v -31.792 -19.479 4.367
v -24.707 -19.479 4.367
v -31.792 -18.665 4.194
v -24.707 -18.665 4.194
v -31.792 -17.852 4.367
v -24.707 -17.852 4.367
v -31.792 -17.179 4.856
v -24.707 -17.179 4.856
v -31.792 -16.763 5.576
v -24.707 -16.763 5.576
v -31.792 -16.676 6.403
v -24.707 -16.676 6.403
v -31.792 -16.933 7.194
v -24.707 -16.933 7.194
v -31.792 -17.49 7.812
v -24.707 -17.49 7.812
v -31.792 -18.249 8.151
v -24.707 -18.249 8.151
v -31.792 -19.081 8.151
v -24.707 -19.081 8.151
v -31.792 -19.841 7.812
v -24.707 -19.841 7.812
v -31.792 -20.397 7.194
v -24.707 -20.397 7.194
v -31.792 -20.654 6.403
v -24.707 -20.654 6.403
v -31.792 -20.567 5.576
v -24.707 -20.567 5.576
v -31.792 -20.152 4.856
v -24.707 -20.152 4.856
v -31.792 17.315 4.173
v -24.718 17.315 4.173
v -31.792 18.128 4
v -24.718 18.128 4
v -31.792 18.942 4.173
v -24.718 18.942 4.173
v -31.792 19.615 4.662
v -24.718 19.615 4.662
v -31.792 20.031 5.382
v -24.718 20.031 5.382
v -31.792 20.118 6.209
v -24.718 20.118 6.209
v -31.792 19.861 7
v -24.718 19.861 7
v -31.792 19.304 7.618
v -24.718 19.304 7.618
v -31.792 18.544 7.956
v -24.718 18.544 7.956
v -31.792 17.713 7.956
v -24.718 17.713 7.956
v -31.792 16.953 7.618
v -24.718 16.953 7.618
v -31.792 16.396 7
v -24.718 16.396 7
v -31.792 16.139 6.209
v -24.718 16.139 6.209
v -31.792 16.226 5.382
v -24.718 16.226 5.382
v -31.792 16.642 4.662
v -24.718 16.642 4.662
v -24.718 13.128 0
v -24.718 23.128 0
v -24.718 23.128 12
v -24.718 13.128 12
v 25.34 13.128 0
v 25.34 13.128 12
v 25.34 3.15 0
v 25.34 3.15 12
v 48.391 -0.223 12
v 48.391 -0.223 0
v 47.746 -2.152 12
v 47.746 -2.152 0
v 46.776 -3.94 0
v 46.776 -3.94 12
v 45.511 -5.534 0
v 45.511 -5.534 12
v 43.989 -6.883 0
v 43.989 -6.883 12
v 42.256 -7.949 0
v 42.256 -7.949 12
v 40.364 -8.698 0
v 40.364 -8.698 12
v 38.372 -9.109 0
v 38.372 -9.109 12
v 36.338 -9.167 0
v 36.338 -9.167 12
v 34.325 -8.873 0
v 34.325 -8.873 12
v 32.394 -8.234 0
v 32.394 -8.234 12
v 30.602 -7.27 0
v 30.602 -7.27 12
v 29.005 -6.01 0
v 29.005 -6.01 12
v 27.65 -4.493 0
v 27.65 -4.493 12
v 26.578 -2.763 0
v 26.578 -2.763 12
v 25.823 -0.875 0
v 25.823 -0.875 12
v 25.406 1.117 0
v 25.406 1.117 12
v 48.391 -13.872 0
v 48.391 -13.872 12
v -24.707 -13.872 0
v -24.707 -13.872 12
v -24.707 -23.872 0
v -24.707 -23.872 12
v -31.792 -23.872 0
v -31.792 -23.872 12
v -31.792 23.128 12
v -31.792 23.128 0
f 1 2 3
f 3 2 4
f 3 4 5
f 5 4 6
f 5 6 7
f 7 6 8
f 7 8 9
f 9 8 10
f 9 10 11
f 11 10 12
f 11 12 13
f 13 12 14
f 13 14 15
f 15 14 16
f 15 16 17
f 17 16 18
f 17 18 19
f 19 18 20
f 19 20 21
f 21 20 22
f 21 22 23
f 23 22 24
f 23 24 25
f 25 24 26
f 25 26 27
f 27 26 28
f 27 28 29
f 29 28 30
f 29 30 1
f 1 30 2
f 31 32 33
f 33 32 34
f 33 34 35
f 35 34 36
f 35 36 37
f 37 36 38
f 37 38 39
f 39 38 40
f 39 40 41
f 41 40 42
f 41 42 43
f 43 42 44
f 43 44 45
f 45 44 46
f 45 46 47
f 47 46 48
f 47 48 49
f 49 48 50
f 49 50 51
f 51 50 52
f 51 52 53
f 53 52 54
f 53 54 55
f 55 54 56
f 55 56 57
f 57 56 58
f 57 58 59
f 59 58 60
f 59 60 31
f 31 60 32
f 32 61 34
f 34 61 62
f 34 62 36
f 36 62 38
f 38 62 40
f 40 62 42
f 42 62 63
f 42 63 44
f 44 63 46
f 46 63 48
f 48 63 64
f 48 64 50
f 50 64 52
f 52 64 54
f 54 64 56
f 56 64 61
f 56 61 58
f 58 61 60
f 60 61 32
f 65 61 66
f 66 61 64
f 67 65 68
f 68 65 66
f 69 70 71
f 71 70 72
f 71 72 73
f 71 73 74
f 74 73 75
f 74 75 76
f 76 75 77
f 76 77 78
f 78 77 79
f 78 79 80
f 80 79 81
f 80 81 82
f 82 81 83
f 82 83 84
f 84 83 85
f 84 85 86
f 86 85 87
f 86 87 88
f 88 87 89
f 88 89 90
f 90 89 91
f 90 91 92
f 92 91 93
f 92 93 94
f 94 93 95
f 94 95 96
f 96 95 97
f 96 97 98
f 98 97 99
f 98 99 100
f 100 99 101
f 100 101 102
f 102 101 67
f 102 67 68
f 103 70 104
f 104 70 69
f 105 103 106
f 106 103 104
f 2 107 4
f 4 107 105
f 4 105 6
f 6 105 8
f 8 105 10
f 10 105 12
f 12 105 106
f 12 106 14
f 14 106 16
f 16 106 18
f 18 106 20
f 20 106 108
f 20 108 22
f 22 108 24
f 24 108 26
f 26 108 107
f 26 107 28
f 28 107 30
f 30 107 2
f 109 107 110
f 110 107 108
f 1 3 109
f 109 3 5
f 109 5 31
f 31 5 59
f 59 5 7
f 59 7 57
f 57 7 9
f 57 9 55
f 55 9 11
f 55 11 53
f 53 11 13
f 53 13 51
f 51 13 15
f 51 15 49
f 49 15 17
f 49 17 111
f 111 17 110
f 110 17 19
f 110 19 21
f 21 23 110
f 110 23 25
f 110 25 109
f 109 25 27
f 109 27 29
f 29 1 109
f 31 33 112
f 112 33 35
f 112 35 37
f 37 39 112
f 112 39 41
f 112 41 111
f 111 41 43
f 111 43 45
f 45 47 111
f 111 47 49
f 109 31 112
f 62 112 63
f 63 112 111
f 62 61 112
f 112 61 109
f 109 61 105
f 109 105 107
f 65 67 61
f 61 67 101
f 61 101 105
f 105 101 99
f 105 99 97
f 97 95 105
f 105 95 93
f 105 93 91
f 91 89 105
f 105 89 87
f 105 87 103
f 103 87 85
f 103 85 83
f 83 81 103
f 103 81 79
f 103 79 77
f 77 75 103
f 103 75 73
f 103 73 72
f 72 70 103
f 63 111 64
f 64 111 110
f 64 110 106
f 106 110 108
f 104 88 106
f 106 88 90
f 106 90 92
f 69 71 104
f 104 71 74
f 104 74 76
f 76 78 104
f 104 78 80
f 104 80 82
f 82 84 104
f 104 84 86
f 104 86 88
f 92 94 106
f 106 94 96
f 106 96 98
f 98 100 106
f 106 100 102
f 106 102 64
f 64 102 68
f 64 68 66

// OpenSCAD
polyhedron(
    points = [
        [-31.7920341, -19.4787045, 4.36715317],
        [-24.7071152, -19.4787045, 4.36715317],
        [-31.7920341, -18.6652336, 4.19424438],
        [-24.7071152, -18.6652336, 4.19424438],
        [-31.7920341, -17.851759, 4.36715317],
        [-24.7071152, -17.851759, 4.36715317],
        [-31.7920341, -17.1789417, 4.85598278],
        [-24.7071152, -17.1789417, 4.85598278],
        [-31.7920341, -16.7631187, 5.57621002],
        [-24.7071152, -16.7631187, 5.57621002],
        [-31.7920341, -16.6761894, 6.40330124],
        [-24.7071152, -16.6761894, 6.40330124],
        [-31.7920341, -16.9331818, 7.19424438],
        [-24.7071152, -16.9331818, 7.19424438],
        [-31.7920341, -17.4896622, 7.81227827],
        [-24.7071152, -17.4896622, 7.81227827],
        [-31.7920341, -18.2494087, 8.1505394],
        [-24.7071152, -18.2494087, 8.1505394],
        [-31.7920341, -19.0810566, 8.1505394],
        [-24.7071152, -19.0810566, 8.1505394],
        [-31.7920341, -19.8408031, 7.81227827],
        [-24.7071152, -19.8408031, 7.81227827],
        [-31.7920341, -20.3972836, 7.19424438],
        [-24.7071152, -20.3972836, 7.19424438],
        [-31.7920341, -20.6542759, 6.40330124],
        [-24.7071152, -20.6542759, 6.40330124],
        [-31.7920341, -20.5673447, 5.57621002],
        [-24.7071152, -20.5673447, 5.57621002],
        [-31.7920341, -20.1515217, 4.85598278],
        [-24.7071152, -20.1515217, 4.85598278],
        [-31.7920341, 17.3150063, 4.17290878],
        [-24.7180061, 17.3150063, 4.17290878],
        [-31.7920341, 18.128479, 4],
        [-24.7180061, 18.128479, 4],
        [-31.7920341, 18.9419537, 4.17290878],
        [-24.7180061, 18.9419537, 4.17290878],
        [-31.7920341, 19.614769, 4.66173887],
        [-24.7180061, 19.614769, 4.66173887],
        [-31.7920341, 20.0305939, 5.38196611],
        [-24.7180061, 20.0305939, 5.38196611],
        [-31.7920341, 20.1175232, 6.20905685],
        [-24.7180061, 20.1175232, 6.20905685],
        [-31.7920341, 19.8605309, 7],
        [-24.7180061, 19.8605309, 7],
        [-31.7920341, 19.3040504, 7.61803389],
        [-24.7180061, 19.3040504, 7.61803389],
        [-31.7920341, 18.5443039, 7.95629501],
        [-24.7180061, 18.5443039, 7.95629501],
        [-31.7920341, 17.712656, 7.95629501],
        [-24.7180061, 17.712656, 7.95629501],
        [-31.7920341, 16.9529095, 7.61803389],
        [-24.7180061, 16.9529095, 7.61803389],
        [-31.7920341, 16.3964291, 7],
        [-24.7180061, 16.3964291, 7],
        [-31.7920341, 16.1394348, 6.20905685],
        [-24.7180061, 16.1394348, 6.20905685],
        [-31.7920341, 16.226366, 5.38196611],
        [-24.7180061, 16.226366, 5.38196611],
        [-31.7920341, 16.6421909, 4.66173887],
        [-24.7180061, 16.6421909, 4.66173887],
        [-24.7180061, 13.12848, 0],
        [-24.7180061, 23.1284809, 0],
        [-24.7180061, 23.1284809, 12],
        [-24.7180061, 13.12848, 12],
        [25.3402996, 13.12848, 0],
        [25.3402996, 13.12848, 12],
        [25.3402996, 3.14999533, 0],
        [25.3402996, 3.14999533, 12],
        [48.3912621, -0.222821593, 12],
        [48.3912621, -0.222821593, 0],
        [47.7458725, -2.15212321, 12],
        [47.7458725, -2.15212321, 0],
        [46.7759361, -3.94040775, 0],
        [46.7759361, -3.94040775, 12],
        [45.5108032, -5.53357029, 0],
        [45.5108032, -5.53357029, 12],
        [43.9887466, -6.88341093, 0],
        [43.9887466, -6.88341093, 12],
        [42.2558136, -7.94909096, 0],
        [42.2558136, -7.94909096, 12],
        [40.3644333, -8.69836903, 0],
        [40.3644333, -8.69836903, 12],
        [38.3718338, -9.10857391, 0],
        [38.3718338, -9.10857391, 12],
        [36.338295, -9.16729832, 0],
        [36.338295, -9.16729832, 12],
        [34.3253403, -8.87276268, 0],
        [34.3253403, -8.87276268, 12],
        [32.3938751, -8.23387909, 0],
        [32.3938751, -8.23387909, 12],
        [30.6023312, -7.26997757, 0],
        [30.6023312, -7.26997757, 12],
        [29.0049152, -6.01021957, 0],
        [29.0049152, -6.01021957, 12],
        [27.6499538, -4.4927187, 0],
        [27.6499538, -4.4927187, 12],
        [26.5784416, -2.76338625, 0],
        [26.5784416, -2.76338625, 12],
        [25.8227921, -0.87454313, 0],
        [25.8227921, -0.87454313, 12],
        [25.4058743, 1.11666512, 0],
        [25.4058743, 1.11666512, 12],
        [48.3912621, -13.871521, 0],
        [48.3912621, -13.871521, 12],
        [-24.7071152, -13.871521, 0],
        [-24.7071152, -13.871521, 12],
        [-24.7071152, -23.8715191, 0],
        [-24.7071152, -23.8715191, 12],
        [-31.7920341, -23.8715191, 0],
        [-31.7920341, -23.8715191, 12],
        [-31.7920341, 23.1284809, 12],
        [-31.7920341, 23.1284809, 0]
    ],
    faces = [
        [0, 1, 2],
        [2, 1, 3],
        [2, 3, 4],
        [4, 3, 5],
        [4, 5, 6],
        [6, 5, 7],
        [6, 7, 8],
        [8, 7, 9],
        [8, 9, 10],
        [10, 9, 11],
        [10, 11, 12],
        [12, 11, 13],
        [12, 13, 14],
        [14, 13, 15],
        [14, 15, 16],
        [16, 15, 17],
        [16, 17, 18],
        [18, 17, 19],
        [18, 19, 20],
        [20, 19, 21],
        [20, 21, 22],
        [22, 21, 23],
        [22, 23, 24],
        [24, 23, 25],
        [24, 25, 26],
        [26, 25, 27],
        [26, 27, 28],
        [28, 27, 29],
        [28, 29, 0],
        [0, 29, 1],
        [30, 31, 32],
        [32, 31, 33],
        [32, 33, 34],
        [34, 33, 35],
        [34, 35, 36],
        [36, 35, 37],
        [36, 37, 38],
        [38, 37, 39],
        [38, 39, 40],
        [40, 39, 41],
        [40, 41, 42],
        [42, 41, 43],
        [42, 43, 44],
        [44, 43, 45],
        [44, 45, 46],
        [46, 45, 47],
        [46, 47, 48],
        [48, 47, 49],
        [48, 49, 50],
        [50, 49, 51],
        [50, 51, 52],
        [52, 51, 53],
        [52, 53, 54],
        [54, 53, 55],
        [54, 55, 56],
        [56, 55, 57],
        [56, 57, 58],
        [58, 57, 59],
        [58, 59, 30],
        [30, 59, 31],
        [31, 60, 33],
        [33, 60, 61],
        [33, 61, 35],
        [35, 61, 37],
        [37, 61, 39],
        [39, 61, 41],
        [41, 61, 62],
        [41, 62, 43],
        [43, 62, 45],
        [45, 62, 47],
        [47, 62, 63],
        [47, 63, 49],
        [49, 63, 51],
        [51, 63, 53],
        [53, 63, 55],
        [55, 63, 60],
        [55, 60, 57],
        [57, 60, 59],
        [59, 60, 31],
        [64, 60, 65],
        [65, 60, 63],
        [66, 64, 67],
        [67, 64, 65],
        [68, 69, 70],
        [70, 69, 71],
        [70, 71, 72],
        [70, 72, 73],
        [73, 72, 74],
        [73, 74, 75],
        [75, 74, 76],
        [75, 76, 77],
        [77, 76, 78],
        [77, 78, 79],
        [79, 78, 80],
        [79, 80, 81],
        [81, 80, 82],
        [81, 82, 83],
        [83, 82, 84],
        [83, 84, 85],
        [85, 84, 86],
        [85, 86, 87],
        [87, 86, 88],
        [87, 88, 89],
        [89, 88, 90],
        [89, 90, 91],
        [91, 90, 92],
        [91, 92, 93],
        [93, 92, 94],
        [93, 94, 95],
        [95, 94, 96],
        [95, 96, 97],
        [97, 96, 98],
        [97, 98, 99],
        [99, 98, 100],
        [99, 100, 101],
        [101, 100, 66],
        [101, 66, 67],
        [102, 69, 103],
        [103, 69, 68],
        [104, 102, 105],
        [105, 102, 103],
        [1, 106, 3],
        [3, 106, 104],
        [3, 104, 5],
        [5, 104, 7],
        [7, 104, 9],
        [9, 104, 11],
        [11, 104, 105],
        [11, 105, 13],
        [13, 105, 15],
        [15, 105, 17],
        [17, 105, 19],
        [19, 105, 107],
        [19, 107, 21],
        [21, 107, 23],
        [23, 107, 25],
        [25, 107, 106],
        [25, 106, 27],
        [27, 106, 29],
        [29, 106, 1],
        [108, 106, 109],
        [109, 106, 107],
        [0, 2, 108],
        [108, 2, 4],
        [108, 4, 30],
        [30, 4, 58],
        [58, 4, 6],
        [58, 6, 56],
        [56, 6, 8],
        [56, 8, 54],
        [54, 8, 10],
        [54, 10, 52],
        [52, 10, 12],
        [52, 12, 50],
        [50, 12, 14],
        [50, 14, 48],
        [48, 14, 16],
        [48, 16, 110],
        [110, 16, 109],
        [109, 16, 18],
        [109, 18, 20],
        [20, 22, 109],
        [109, 22, 24],
        [109, 24, 108],
        [108, 24, 26],
        [108, 26, 28],
        [28, 0, 108],
        [30, 32, 111],
        [111, 32, 34],
        [111, 34, 36],
        [36, 38, 111],
        [111, 38, 40],
        [111, 40, 110],
        [110, 40, 42],
        [110, 42, 44],
        [44, 46, 110],
        [110, 46, 48],
        [108, 30, 111],
        [61, 111, 62],
        [62, 111, 110],
        [61, 60, 111],
        [111, 60, 108],
        [108, 60, 104],
        [108, 104, 106],
        [64, 66, 60],
        [60, 66, 100],
        [60, 100, 104],
        [104, 100, 98],
        [104, 98, 96],
        [96, 94, 104],
        [104, 94, 92],
        [104, 92, 90],
        [90, 88, 104],
        [104, 88, 86],
        [104, 86, 102],
        [102, 86, 84],
        [102, 84, 82],
        [82, 80, 102],
        [102, 80, 78],
        [102, 78, 76],
        [76, 74, 102],
        [102, 74, 72],
        [102, 72, 71],
        [71, 69, 102],
        [62, 110, 63],
        [63, 110, 109],
        [63, 109, 105],
        [105, 109, 107],
        [103, 87, 105],
        [105, 87, 89],
        [105, 89, 91],
        [68, 70, 103],
        [103, 70, 73],
        [103, 73, 75],
        [75, 77, 103],
        [103, 77, 79],
        [103, 79, 81],
        [81, 83, 103],
        [103, 83, 85],
        [103, 85, 87],
        [91, 93, 105],
        [105, 93, 95],
        [105, 95, 97],
        [97, 99, 105],
        [105, 99, 101],
        [105, 101, 63],
        [63, 101, 67],
        [63, 67, 65]
    ],
    convexity = 10
);
